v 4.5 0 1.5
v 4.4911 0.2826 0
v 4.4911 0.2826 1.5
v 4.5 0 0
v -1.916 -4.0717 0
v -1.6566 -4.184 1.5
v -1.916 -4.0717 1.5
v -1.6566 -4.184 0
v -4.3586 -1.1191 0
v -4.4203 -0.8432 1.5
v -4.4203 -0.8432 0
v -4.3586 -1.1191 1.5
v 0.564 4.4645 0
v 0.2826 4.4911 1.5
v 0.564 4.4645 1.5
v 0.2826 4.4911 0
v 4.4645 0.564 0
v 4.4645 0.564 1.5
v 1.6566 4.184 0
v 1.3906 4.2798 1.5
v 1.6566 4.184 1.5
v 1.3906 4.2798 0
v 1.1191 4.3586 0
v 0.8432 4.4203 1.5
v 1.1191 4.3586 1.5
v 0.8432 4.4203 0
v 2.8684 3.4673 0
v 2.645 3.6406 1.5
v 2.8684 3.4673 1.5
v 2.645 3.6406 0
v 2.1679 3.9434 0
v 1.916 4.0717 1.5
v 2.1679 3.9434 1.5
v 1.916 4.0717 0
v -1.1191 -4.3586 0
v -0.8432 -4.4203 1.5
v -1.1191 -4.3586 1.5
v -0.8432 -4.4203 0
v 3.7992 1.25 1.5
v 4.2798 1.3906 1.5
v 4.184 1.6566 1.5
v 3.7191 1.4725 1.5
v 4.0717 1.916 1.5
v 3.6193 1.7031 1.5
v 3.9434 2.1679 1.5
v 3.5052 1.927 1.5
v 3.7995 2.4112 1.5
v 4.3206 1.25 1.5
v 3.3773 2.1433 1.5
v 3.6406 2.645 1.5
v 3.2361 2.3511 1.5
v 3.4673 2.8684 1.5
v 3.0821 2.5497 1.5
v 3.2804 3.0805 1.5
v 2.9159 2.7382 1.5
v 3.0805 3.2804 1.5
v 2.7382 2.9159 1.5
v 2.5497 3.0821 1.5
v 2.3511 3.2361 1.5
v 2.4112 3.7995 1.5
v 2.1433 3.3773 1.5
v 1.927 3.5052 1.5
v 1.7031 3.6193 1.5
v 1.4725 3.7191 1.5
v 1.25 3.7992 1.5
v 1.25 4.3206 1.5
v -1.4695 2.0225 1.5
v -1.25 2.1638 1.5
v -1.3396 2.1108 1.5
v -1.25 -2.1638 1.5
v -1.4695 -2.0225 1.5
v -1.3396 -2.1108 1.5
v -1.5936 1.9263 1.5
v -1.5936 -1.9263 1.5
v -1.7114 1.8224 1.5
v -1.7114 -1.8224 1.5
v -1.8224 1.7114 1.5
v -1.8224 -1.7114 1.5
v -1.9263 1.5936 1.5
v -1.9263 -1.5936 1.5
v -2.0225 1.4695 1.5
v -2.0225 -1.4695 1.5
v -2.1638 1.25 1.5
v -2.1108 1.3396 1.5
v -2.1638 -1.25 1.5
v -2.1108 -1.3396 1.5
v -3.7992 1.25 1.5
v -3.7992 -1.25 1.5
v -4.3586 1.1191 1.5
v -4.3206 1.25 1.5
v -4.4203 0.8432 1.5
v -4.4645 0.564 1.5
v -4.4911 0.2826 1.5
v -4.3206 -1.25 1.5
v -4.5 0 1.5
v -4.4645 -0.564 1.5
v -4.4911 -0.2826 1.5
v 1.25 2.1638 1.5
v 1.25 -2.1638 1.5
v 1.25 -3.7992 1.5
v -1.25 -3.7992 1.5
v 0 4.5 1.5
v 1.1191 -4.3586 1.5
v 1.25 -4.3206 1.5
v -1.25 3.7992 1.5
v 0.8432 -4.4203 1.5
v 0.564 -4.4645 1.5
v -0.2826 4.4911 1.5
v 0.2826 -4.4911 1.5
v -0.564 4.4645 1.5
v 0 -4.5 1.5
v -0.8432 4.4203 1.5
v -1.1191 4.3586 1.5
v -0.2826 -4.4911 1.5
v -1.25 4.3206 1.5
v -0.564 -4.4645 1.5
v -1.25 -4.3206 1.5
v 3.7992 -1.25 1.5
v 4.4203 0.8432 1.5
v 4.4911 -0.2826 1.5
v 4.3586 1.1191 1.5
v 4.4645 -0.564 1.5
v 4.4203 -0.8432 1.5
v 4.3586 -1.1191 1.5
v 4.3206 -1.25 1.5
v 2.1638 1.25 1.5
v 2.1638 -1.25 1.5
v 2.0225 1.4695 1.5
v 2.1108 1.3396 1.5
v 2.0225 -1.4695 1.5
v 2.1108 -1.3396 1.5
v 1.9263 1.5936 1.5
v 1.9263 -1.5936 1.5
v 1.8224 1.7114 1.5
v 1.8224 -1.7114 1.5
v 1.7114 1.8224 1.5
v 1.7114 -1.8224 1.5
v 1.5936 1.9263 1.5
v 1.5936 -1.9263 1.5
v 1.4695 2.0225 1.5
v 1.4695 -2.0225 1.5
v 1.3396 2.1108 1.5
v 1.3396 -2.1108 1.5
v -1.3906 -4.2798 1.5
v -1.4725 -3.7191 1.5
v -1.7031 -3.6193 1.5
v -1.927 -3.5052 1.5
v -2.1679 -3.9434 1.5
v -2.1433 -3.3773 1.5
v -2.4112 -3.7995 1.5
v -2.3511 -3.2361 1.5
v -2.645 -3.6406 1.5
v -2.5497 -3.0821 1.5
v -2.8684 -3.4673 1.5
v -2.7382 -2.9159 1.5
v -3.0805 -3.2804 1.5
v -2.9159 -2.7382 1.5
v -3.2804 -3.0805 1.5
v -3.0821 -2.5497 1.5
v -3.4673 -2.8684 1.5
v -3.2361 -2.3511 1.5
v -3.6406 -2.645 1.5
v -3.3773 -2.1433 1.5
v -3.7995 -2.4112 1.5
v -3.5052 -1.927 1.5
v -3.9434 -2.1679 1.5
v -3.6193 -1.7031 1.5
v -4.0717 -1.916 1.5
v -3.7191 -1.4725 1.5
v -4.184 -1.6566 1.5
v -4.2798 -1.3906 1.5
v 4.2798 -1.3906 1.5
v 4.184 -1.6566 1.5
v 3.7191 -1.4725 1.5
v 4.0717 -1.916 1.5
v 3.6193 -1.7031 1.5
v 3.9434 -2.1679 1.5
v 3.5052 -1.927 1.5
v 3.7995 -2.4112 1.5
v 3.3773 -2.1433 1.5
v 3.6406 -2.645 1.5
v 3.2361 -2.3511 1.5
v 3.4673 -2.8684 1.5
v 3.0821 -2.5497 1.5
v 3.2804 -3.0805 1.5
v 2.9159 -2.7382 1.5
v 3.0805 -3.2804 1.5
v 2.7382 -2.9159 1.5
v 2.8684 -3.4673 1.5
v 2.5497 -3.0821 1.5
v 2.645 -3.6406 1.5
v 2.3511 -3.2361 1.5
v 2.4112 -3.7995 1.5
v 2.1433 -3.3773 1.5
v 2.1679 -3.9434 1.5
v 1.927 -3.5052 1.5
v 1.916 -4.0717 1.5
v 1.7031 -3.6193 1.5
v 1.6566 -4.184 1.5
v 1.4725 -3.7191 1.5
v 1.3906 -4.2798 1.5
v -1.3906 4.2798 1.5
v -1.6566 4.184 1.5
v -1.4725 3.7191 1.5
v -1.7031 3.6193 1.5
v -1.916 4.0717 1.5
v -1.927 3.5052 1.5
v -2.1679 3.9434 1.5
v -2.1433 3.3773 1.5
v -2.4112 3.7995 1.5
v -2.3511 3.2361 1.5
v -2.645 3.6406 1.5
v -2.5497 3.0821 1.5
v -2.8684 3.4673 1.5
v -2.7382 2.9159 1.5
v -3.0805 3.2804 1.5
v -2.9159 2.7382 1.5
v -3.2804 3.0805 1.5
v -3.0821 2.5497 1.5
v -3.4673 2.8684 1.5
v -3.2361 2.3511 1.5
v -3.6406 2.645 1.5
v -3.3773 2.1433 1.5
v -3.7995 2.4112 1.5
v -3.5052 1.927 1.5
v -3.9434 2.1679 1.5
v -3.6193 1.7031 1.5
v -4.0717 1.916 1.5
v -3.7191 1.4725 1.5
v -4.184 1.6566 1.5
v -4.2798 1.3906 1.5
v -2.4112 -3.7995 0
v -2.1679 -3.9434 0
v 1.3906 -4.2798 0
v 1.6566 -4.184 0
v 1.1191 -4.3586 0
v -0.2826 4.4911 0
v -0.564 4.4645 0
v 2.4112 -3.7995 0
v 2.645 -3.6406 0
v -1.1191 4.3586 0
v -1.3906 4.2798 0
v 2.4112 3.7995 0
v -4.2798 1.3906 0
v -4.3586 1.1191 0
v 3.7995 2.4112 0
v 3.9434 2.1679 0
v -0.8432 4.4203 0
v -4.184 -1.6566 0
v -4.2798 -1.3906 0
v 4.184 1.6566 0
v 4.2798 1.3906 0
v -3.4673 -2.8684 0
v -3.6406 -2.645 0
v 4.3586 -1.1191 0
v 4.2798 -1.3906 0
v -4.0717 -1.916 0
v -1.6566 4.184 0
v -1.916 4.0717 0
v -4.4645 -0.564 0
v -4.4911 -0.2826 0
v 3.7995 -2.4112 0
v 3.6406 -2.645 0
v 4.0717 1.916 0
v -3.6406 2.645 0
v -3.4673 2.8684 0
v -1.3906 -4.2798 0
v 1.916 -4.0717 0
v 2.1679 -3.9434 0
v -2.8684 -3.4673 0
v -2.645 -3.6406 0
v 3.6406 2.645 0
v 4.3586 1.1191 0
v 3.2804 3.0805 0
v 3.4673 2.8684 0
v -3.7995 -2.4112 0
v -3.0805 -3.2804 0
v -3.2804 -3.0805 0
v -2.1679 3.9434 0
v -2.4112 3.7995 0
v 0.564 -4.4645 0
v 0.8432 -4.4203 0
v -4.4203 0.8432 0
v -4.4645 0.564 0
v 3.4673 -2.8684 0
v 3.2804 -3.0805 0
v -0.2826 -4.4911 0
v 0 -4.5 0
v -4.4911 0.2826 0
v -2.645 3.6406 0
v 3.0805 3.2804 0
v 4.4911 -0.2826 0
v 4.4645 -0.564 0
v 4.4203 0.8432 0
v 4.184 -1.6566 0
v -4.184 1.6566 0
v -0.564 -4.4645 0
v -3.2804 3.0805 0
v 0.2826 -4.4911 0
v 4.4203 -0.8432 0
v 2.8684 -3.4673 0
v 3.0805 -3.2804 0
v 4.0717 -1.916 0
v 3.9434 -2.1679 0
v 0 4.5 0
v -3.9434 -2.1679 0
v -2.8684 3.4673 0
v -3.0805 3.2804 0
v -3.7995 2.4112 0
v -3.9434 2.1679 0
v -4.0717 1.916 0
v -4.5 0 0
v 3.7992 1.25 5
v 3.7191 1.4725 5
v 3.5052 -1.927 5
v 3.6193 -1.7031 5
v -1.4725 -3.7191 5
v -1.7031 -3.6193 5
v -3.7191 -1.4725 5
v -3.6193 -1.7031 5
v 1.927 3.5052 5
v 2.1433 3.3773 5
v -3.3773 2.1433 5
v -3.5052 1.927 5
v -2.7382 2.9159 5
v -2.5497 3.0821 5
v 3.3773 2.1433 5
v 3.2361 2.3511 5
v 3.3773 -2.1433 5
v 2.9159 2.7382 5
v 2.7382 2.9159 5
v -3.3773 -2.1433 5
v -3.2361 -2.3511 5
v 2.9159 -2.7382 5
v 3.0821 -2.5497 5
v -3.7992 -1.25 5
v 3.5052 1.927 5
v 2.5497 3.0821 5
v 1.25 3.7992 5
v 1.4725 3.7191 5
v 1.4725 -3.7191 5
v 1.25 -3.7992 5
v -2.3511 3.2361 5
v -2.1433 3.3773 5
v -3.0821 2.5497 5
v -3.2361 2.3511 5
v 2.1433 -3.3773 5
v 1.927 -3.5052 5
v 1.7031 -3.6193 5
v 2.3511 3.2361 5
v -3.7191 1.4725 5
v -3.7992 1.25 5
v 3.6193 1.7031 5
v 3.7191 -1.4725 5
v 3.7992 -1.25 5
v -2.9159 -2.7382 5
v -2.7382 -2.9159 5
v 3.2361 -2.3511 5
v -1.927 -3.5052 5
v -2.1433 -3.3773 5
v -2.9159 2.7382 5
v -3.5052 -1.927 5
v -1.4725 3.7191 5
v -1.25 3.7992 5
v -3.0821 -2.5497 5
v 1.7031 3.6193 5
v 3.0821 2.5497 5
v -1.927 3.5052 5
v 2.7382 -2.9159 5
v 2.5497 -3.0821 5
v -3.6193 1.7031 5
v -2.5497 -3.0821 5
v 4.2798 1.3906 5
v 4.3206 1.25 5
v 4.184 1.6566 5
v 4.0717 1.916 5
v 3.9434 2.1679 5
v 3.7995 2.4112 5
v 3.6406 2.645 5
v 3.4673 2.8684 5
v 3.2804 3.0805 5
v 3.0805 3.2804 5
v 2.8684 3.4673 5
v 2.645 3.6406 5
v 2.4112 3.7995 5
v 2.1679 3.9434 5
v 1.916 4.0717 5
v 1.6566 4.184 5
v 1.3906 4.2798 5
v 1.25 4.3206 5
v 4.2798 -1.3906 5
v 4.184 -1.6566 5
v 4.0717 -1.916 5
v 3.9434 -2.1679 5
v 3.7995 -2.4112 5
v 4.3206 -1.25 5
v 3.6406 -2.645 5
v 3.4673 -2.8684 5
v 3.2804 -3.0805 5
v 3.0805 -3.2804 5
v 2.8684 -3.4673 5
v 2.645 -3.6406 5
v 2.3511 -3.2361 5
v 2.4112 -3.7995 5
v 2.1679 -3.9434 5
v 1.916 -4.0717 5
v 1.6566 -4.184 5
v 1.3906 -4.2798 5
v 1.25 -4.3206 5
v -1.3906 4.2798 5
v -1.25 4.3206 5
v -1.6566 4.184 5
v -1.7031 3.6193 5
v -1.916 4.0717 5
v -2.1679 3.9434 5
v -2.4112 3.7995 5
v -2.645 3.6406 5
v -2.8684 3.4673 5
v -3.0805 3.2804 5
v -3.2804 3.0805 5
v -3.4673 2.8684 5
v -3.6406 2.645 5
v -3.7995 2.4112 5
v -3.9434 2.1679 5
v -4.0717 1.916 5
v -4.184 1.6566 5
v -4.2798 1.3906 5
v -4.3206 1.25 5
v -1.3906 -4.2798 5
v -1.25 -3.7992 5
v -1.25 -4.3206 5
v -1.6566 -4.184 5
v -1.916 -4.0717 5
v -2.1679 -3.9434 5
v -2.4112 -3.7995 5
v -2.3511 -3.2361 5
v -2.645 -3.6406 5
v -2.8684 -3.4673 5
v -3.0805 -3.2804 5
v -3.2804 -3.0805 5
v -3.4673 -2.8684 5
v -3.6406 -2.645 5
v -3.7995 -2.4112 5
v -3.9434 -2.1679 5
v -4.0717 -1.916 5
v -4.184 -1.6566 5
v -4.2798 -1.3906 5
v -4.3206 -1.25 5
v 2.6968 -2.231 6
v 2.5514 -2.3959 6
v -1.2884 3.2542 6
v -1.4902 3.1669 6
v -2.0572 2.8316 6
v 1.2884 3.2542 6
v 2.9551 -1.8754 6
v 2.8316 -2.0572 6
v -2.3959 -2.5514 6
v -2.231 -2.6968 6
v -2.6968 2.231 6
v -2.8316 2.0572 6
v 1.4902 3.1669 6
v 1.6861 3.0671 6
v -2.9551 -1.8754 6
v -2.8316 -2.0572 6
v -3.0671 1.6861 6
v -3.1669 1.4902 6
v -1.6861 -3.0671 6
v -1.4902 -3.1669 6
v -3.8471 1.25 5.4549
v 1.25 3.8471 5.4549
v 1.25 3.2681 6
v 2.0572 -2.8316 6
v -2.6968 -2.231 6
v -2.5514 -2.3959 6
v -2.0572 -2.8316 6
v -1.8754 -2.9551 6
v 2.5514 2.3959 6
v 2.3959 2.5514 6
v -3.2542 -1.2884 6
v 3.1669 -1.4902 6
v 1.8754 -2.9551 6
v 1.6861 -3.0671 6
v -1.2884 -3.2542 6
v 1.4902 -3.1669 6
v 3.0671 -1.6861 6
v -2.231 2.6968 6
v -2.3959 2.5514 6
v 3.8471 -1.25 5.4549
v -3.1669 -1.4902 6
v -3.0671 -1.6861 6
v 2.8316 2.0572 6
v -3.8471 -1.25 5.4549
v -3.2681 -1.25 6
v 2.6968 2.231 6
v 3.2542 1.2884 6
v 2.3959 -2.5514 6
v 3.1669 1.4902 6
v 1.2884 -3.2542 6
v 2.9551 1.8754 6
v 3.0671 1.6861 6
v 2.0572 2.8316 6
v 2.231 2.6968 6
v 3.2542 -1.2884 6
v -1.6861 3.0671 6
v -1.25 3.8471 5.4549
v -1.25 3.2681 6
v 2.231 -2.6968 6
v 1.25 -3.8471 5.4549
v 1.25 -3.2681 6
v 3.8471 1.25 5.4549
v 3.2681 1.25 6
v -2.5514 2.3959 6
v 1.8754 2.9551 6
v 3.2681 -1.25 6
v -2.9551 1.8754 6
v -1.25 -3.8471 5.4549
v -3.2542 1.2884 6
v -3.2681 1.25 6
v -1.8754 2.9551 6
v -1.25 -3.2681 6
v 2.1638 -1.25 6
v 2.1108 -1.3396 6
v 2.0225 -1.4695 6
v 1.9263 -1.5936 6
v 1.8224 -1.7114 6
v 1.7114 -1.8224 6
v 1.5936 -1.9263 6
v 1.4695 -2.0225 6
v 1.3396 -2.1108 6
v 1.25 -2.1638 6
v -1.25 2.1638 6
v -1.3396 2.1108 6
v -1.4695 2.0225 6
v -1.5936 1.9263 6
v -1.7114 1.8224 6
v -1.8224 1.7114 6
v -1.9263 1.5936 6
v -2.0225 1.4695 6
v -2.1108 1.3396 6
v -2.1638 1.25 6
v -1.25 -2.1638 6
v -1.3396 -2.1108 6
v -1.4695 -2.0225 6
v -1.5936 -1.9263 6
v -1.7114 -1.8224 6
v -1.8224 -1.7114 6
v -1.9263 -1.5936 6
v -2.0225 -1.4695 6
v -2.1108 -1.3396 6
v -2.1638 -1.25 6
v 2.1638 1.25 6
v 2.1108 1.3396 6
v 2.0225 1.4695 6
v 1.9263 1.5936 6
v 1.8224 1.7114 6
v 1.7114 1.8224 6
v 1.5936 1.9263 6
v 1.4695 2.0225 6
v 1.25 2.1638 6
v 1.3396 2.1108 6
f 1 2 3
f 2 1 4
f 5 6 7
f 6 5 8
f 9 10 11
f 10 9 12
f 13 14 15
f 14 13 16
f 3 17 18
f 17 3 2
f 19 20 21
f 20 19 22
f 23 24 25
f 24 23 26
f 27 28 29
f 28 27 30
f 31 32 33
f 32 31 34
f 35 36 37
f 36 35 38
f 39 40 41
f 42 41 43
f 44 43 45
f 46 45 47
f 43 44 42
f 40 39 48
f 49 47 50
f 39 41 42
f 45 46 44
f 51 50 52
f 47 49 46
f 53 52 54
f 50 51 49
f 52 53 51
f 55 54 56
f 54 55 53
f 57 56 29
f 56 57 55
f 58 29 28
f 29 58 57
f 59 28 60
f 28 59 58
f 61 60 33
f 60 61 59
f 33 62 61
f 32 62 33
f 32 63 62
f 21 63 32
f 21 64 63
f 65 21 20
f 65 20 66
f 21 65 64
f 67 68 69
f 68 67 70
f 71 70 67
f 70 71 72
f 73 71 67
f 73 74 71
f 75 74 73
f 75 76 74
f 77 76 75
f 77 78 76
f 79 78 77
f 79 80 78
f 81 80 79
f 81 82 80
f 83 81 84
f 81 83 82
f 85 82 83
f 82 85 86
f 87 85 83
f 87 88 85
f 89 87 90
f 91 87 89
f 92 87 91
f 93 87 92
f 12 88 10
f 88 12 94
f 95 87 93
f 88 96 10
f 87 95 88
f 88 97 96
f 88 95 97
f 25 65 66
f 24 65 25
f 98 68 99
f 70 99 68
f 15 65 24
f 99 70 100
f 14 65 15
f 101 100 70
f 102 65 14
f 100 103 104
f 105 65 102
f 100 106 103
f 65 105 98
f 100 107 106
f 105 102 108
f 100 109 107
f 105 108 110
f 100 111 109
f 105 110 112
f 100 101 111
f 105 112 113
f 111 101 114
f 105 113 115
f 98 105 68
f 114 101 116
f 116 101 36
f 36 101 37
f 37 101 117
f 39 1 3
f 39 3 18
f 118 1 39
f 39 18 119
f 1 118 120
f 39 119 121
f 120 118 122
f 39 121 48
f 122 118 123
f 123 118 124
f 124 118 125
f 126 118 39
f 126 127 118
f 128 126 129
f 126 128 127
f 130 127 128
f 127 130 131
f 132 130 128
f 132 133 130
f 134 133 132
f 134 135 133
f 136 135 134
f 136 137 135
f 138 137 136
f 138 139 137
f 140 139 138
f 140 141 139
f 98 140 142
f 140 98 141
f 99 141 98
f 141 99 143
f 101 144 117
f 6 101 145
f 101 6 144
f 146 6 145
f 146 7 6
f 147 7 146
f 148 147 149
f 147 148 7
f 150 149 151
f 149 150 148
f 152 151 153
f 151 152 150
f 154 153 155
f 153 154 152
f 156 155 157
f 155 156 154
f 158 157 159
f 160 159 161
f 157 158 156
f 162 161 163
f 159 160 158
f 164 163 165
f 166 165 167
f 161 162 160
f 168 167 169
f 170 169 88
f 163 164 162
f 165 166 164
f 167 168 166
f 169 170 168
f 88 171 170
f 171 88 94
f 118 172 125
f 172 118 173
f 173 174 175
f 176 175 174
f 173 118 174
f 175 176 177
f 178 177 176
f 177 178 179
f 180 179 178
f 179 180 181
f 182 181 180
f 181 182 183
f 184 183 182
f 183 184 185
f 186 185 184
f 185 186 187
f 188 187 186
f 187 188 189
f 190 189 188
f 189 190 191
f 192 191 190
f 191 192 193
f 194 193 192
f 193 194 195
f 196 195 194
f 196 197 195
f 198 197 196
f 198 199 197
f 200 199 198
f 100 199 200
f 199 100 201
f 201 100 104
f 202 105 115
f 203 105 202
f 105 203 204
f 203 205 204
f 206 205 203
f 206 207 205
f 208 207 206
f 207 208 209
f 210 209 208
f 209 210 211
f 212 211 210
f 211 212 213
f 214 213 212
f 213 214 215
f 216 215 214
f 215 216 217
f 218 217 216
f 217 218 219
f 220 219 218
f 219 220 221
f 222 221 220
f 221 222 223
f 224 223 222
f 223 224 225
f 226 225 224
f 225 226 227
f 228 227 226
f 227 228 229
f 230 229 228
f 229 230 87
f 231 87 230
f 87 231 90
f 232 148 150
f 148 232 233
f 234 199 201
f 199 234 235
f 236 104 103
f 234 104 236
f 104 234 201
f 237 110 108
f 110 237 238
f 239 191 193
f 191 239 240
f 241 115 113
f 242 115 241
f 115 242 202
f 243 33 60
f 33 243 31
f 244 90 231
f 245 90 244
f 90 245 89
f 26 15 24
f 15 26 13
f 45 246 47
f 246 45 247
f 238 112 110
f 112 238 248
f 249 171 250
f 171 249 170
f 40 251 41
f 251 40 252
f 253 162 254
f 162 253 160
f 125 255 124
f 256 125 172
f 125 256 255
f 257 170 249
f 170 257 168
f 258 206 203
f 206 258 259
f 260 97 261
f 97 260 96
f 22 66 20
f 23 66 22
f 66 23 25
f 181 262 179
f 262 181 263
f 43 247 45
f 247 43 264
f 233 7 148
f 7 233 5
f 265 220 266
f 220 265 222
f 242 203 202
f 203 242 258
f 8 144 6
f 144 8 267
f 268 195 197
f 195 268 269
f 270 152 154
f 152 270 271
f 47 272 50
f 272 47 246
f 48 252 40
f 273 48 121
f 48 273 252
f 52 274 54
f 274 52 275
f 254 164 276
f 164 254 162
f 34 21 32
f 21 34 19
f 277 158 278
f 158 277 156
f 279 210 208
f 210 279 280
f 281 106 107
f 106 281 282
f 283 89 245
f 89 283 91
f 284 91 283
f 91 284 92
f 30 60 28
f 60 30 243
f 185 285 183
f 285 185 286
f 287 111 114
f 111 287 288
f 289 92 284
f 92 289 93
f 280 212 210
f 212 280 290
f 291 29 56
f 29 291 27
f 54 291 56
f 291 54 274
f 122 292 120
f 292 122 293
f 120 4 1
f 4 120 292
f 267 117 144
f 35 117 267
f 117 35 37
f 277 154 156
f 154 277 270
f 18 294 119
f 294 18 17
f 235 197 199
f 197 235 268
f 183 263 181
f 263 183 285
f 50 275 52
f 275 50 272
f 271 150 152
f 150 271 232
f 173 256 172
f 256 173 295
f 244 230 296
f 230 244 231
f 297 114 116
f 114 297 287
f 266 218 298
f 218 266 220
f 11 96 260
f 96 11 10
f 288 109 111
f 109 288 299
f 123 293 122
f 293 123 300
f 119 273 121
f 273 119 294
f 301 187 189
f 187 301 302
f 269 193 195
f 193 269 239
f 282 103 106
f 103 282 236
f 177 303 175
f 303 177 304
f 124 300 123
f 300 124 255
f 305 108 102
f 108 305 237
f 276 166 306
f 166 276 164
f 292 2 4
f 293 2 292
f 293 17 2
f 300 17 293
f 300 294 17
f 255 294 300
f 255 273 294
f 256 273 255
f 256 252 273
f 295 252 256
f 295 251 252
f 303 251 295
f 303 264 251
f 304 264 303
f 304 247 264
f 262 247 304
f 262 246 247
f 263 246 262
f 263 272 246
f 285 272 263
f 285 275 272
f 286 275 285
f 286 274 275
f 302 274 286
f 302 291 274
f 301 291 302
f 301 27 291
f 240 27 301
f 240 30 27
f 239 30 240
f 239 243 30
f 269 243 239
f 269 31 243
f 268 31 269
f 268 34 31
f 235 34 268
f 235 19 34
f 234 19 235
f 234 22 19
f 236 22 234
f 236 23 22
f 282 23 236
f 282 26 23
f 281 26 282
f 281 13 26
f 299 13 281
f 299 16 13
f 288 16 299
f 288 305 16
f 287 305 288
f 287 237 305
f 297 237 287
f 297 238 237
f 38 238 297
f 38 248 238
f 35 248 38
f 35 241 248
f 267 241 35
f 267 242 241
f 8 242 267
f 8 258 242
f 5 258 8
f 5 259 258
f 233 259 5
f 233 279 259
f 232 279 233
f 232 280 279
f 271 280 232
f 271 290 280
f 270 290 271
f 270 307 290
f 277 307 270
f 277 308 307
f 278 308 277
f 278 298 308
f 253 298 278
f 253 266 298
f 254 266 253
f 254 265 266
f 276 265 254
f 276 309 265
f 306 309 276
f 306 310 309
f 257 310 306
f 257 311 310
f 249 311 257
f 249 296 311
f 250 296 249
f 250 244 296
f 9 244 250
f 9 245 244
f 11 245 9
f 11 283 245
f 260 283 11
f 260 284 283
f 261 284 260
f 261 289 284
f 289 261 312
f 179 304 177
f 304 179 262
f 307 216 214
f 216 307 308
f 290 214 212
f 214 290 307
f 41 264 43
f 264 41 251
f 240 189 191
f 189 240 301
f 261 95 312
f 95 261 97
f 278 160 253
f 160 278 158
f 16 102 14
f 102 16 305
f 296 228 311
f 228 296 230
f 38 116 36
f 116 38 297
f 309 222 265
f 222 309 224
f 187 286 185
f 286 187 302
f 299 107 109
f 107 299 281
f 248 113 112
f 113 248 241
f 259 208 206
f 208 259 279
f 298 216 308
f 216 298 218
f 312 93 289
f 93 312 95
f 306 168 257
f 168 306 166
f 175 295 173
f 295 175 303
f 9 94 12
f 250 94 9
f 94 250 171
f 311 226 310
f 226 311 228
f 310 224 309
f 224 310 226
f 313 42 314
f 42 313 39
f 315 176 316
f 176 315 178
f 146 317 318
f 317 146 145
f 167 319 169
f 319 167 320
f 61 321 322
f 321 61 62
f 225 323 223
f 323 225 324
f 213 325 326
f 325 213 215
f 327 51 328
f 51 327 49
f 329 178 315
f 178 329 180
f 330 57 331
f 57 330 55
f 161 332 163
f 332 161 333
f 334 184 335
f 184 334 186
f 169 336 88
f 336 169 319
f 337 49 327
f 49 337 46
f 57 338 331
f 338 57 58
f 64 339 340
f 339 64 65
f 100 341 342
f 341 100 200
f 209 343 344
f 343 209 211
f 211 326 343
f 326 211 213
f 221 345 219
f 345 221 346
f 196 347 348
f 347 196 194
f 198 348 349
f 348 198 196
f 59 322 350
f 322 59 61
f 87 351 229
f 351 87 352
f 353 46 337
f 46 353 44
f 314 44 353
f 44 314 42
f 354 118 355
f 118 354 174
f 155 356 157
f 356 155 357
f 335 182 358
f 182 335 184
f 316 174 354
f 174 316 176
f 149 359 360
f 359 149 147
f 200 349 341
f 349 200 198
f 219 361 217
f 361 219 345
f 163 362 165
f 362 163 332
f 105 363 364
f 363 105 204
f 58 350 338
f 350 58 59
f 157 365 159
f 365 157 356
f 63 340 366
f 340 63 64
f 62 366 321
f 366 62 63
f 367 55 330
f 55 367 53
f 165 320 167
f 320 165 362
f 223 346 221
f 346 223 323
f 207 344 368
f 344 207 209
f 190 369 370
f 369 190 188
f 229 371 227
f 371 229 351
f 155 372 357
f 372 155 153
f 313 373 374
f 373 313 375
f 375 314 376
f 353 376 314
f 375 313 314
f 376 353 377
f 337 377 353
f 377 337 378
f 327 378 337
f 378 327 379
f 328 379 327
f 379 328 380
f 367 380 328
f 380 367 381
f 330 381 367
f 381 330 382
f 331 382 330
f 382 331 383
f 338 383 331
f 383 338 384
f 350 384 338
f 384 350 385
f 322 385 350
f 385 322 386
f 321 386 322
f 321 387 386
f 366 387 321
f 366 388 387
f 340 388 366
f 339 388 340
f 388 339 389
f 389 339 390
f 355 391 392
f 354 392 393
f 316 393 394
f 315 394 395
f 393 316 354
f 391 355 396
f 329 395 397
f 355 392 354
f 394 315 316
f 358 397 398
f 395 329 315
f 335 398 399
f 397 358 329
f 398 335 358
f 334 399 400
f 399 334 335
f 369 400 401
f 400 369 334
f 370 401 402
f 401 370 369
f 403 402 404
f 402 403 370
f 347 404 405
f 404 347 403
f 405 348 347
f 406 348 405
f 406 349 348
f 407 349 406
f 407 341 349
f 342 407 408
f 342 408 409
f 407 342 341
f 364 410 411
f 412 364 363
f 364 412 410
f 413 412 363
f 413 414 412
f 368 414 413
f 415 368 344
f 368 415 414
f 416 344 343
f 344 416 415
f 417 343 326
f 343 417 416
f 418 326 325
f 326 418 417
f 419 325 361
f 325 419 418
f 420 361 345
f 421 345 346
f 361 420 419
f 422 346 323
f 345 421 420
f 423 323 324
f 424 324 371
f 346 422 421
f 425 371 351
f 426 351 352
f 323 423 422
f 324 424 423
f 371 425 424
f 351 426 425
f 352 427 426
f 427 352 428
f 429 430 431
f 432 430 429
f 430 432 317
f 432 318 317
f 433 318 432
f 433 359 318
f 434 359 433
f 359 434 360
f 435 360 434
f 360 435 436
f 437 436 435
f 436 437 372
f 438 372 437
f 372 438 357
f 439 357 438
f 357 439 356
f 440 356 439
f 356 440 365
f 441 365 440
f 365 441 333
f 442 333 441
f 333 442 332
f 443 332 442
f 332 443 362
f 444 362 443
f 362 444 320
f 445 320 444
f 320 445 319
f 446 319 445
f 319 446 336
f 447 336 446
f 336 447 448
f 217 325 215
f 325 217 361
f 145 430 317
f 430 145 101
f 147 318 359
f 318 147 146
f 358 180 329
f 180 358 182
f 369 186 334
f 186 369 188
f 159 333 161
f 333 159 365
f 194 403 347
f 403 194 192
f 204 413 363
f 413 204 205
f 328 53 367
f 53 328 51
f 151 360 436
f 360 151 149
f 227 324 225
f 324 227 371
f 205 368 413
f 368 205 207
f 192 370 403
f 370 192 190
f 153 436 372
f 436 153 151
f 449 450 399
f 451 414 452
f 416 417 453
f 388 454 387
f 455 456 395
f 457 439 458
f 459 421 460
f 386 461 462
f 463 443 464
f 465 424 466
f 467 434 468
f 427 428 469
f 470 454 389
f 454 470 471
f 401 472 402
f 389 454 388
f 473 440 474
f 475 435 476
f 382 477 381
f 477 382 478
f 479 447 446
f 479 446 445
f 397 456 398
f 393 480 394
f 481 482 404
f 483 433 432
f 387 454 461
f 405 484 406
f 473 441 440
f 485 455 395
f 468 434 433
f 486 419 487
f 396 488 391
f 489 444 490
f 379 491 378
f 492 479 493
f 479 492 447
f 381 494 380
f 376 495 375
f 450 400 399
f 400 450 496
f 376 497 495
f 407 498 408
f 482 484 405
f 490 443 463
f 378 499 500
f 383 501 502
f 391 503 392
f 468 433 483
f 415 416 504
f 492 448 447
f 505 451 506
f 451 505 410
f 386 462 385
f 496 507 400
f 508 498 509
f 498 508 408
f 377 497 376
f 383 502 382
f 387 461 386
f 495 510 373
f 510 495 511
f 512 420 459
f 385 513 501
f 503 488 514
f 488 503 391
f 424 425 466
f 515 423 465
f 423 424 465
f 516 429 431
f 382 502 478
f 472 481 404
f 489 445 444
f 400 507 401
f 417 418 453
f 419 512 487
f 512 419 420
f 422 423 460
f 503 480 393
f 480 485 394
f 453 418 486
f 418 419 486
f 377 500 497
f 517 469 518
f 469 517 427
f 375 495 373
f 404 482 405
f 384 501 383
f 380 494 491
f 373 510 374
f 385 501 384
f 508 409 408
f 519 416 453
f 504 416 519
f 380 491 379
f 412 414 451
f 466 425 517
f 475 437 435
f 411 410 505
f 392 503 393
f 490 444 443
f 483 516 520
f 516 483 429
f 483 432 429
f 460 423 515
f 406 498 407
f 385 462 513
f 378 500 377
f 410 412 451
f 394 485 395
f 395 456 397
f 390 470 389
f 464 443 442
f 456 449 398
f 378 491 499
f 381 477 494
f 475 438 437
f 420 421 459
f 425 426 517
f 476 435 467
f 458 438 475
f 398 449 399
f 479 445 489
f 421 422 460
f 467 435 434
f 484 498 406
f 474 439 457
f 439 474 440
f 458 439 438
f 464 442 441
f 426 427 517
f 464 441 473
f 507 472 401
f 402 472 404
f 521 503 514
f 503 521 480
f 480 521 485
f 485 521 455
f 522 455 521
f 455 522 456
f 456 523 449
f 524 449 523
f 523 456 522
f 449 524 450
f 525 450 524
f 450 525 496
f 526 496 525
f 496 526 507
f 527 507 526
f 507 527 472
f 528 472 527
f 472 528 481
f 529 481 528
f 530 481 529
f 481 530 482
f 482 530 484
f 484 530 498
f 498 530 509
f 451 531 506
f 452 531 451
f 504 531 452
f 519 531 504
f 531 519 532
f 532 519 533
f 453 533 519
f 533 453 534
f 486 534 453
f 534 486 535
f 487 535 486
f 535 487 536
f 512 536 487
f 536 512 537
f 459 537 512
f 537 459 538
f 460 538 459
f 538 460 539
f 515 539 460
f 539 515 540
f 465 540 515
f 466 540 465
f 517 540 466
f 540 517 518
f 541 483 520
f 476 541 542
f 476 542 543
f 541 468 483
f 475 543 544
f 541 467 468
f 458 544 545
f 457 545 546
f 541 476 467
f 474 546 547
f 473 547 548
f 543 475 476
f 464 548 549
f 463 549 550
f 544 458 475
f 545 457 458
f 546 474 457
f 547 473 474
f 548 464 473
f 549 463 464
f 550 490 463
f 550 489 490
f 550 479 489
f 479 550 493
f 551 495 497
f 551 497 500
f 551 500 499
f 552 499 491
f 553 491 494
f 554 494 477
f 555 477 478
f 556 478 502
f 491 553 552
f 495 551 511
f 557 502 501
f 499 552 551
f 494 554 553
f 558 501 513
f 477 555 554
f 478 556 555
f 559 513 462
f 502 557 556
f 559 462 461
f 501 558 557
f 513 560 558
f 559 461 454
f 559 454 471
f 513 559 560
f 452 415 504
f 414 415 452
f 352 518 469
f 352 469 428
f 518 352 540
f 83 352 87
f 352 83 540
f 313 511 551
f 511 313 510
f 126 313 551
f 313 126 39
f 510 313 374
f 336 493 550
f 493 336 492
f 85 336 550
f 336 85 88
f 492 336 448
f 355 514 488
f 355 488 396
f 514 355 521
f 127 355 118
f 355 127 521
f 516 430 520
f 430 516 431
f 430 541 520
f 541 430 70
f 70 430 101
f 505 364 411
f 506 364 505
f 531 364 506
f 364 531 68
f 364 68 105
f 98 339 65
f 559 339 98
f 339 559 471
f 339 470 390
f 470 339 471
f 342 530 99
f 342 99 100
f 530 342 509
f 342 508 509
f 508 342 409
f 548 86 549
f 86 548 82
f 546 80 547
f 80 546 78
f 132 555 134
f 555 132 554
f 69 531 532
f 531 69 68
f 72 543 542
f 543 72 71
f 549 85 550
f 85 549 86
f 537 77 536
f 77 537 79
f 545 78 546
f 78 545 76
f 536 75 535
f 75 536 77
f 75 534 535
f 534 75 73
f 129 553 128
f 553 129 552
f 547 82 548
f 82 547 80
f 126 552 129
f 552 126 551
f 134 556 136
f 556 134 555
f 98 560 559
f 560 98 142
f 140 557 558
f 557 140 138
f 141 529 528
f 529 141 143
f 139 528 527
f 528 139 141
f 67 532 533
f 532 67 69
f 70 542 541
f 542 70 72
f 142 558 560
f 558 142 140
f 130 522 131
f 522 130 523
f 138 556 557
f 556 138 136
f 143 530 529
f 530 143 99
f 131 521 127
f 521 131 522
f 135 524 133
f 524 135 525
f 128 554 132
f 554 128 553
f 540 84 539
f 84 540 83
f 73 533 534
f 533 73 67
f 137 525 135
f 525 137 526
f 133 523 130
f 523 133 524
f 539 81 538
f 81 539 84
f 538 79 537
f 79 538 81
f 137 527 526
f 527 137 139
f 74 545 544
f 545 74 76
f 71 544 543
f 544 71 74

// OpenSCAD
CapDiameter=9;
CapInsideDiameter=7;
ClipOutsideDiameter=8;
CapThickness=1.5;
PostHeight=5;
ClipHeight=1;


$fn=100;

difference() {
        union(){
        cylinder(h=CapThickness,d=CapDiameter);
        cylinder(h=PostHeight,d1=ClipOutsideDiameter,d2=ClipOutsideDiameter);
        translate([0,0,PostHeight]) cylinder(h=ClipHeight,d1=ClipOutsideDiameter+1,d2=CapInsideDiameter);
      }
    translate([-CapDiameter/2,-1.25,CapThickness]) cube([CapDiameter,2.5,PostHeight+1]);
    rotate([0,0,90]) translate([-CapDiameter/2,-1.25,CapThickness]) cube([CapDiameter,2.5,PostHeight+1]);
    translate([0,0,CapThickness])cylinder(h=CapThickness+PostHeight+1,d=5);
}
